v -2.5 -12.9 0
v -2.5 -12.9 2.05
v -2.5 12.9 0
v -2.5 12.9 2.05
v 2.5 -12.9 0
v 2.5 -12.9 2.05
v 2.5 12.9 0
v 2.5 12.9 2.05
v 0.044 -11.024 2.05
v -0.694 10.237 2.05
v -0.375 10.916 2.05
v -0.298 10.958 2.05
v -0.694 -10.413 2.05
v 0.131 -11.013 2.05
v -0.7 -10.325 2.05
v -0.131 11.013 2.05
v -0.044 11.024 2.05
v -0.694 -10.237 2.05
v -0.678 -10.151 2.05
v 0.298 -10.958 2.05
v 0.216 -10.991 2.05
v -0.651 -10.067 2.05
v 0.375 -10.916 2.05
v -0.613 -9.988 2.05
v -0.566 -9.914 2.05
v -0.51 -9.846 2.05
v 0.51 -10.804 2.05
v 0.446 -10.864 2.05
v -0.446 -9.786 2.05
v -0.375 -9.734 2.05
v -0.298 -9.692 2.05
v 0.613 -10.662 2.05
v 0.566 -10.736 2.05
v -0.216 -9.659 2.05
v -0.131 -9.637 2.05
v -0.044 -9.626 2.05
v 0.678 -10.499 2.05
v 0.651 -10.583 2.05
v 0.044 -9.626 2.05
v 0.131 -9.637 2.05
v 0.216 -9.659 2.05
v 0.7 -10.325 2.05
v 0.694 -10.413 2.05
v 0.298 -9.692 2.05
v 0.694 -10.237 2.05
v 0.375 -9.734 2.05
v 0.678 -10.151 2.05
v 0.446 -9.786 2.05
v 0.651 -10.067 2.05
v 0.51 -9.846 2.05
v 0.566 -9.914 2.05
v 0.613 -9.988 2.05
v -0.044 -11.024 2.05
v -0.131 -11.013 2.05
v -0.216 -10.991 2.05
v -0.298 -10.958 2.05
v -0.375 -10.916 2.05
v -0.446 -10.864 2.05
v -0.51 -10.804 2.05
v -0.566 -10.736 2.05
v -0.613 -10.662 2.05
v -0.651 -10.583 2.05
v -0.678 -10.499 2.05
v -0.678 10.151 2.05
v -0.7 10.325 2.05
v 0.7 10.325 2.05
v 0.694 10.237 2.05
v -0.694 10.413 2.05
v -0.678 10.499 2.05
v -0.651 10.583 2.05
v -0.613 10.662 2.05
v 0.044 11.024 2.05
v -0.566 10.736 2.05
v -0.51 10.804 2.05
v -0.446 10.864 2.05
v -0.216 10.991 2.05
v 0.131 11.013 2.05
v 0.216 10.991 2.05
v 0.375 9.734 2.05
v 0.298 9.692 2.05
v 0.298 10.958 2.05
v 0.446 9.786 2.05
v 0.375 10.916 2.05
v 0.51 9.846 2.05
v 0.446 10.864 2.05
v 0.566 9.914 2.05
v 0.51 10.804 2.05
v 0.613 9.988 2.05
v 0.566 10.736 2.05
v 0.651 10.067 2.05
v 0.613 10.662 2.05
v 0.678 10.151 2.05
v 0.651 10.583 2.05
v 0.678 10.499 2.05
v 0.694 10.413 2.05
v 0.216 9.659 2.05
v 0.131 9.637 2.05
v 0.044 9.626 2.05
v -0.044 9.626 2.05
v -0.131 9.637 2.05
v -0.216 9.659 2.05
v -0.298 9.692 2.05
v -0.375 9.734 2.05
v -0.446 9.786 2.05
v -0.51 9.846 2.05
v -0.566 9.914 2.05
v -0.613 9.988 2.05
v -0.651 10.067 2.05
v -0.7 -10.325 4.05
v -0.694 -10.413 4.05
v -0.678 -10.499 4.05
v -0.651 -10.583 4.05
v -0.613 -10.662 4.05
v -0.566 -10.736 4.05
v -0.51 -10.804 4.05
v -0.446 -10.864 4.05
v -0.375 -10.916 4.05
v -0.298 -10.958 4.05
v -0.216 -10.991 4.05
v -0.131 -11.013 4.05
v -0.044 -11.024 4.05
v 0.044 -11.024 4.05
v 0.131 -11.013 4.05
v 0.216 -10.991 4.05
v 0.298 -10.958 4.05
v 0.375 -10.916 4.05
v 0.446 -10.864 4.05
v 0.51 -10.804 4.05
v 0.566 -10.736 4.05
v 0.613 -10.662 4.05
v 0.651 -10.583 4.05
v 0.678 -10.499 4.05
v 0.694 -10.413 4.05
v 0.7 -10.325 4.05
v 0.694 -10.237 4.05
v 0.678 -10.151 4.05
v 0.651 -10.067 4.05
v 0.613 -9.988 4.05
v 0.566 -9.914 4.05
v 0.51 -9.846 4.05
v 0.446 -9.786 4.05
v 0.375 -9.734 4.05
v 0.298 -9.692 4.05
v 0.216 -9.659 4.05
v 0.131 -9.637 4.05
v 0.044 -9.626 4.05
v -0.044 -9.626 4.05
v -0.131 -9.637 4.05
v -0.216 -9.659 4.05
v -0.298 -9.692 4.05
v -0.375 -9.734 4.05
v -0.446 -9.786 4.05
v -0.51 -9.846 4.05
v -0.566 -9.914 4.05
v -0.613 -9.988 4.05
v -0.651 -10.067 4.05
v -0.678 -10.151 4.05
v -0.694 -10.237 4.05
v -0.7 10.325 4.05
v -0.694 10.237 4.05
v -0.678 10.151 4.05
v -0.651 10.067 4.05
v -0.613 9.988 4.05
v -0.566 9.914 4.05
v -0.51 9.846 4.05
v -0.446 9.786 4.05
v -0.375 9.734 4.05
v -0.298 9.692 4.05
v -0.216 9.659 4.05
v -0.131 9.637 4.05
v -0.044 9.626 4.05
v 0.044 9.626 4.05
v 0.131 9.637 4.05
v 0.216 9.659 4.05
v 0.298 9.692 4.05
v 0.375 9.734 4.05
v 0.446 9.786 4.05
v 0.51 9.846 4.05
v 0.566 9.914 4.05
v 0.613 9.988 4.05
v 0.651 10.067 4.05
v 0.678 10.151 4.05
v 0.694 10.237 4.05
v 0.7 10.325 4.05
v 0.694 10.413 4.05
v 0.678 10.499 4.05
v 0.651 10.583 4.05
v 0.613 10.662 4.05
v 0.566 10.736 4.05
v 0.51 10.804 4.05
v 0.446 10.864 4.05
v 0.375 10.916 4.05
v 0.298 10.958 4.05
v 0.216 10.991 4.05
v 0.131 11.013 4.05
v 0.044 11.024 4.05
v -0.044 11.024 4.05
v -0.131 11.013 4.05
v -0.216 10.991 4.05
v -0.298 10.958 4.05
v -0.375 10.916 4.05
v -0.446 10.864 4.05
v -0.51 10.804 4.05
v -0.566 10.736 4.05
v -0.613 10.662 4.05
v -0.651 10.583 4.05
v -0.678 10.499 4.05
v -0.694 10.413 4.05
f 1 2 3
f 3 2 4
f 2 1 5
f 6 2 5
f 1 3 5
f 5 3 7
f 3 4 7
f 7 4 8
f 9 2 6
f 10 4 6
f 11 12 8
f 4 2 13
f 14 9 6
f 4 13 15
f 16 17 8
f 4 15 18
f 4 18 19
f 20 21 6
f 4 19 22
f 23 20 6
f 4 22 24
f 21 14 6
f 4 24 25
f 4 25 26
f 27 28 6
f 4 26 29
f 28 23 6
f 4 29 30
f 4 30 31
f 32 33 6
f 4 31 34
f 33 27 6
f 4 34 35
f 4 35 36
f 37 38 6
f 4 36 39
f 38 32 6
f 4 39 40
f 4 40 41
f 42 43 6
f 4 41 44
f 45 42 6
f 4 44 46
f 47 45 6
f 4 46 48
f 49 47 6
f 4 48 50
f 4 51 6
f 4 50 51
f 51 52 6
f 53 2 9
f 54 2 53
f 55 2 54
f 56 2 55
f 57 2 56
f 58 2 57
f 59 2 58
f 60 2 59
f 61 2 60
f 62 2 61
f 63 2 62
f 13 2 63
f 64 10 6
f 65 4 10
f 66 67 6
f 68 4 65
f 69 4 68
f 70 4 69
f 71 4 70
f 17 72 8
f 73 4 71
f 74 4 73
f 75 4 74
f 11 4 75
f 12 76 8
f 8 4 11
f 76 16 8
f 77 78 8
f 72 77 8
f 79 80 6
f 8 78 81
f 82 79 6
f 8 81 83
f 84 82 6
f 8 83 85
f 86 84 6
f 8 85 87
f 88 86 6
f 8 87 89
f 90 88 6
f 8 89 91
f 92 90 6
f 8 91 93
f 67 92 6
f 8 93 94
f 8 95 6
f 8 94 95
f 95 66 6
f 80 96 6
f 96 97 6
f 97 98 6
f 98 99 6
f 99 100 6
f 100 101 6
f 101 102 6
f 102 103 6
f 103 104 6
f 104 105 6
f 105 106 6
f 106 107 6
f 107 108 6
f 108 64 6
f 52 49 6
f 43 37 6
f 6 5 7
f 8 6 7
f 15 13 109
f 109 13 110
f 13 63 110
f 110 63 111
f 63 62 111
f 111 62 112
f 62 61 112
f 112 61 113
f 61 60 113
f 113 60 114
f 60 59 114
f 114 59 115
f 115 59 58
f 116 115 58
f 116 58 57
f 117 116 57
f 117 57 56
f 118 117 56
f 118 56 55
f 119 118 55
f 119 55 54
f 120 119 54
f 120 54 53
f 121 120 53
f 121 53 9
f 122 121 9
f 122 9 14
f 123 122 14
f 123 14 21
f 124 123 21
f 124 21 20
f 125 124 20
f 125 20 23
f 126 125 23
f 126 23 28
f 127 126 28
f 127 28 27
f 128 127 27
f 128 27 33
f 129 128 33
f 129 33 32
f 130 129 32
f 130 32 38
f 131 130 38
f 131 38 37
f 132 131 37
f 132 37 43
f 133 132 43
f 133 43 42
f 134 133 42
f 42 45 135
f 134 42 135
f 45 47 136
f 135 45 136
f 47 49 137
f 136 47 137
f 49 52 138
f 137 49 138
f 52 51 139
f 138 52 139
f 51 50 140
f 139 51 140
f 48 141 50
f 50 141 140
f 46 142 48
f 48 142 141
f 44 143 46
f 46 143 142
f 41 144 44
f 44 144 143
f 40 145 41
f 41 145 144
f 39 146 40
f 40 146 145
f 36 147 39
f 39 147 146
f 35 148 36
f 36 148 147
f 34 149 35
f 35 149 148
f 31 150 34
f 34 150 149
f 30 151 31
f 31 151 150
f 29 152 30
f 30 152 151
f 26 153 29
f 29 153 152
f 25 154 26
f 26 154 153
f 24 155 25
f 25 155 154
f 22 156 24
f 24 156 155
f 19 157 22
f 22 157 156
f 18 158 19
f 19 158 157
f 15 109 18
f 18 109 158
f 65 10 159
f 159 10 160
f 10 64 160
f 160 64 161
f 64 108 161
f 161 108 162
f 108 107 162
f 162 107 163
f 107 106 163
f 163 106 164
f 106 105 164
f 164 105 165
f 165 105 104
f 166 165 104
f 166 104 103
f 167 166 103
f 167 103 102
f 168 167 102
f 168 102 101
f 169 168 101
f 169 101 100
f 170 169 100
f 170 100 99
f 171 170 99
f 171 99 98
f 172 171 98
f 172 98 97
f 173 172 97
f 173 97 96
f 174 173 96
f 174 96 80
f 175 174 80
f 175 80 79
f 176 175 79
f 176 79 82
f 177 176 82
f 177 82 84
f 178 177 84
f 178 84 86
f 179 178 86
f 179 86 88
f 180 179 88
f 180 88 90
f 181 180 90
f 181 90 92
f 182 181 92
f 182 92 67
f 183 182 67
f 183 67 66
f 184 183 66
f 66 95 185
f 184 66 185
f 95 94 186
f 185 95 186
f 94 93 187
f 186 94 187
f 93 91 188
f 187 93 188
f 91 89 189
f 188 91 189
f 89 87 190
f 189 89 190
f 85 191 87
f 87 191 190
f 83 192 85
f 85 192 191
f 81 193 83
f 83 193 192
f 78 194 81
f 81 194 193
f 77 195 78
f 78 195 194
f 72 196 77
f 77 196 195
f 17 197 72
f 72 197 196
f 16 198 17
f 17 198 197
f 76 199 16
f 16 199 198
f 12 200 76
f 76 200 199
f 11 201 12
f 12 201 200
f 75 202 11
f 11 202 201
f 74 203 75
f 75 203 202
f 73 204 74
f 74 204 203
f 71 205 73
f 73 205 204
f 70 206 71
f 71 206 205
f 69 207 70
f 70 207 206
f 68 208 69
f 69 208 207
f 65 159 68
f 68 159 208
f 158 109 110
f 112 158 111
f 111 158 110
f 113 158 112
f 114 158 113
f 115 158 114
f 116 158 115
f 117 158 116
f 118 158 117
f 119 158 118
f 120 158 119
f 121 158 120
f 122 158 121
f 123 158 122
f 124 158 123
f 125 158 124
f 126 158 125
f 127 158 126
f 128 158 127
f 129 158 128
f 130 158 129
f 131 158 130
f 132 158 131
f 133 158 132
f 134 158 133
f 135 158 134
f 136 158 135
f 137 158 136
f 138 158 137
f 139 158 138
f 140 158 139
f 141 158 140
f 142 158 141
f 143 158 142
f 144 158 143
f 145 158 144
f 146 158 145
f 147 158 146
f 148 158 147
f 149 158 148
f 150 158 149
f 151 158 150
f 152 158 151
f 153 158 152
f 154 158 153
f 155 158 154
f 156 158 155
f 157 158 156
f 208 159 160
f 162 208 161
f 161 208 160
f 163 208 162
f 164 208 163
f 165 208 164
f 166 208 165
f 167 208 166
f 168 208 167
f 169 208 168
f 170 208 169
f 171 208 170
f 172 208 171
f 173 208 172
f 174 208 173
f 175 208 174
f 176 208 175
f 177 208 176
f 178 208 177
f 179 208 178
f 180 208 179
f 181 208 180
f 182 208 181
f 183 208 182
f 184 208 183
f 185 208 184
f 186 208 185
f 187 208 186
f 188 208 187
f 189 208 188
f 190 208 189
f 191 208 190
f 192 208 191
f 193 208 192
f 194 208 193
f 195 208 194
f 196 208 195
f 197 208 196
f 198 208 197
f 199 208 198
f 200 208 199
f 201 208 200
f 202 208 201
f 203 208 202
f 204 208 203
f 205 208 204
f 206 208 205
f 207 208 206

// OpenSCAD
w = 5;
d = 25.8;
h_base = 2.05;
h_pin = 2;
pin_diameter = 1.8 - 0.4;
pin_offset = 10 + (0.75 - 0.1)/2;

translate([0, 0, h_base/2])
cube([w, d, h_base], center=true);

for (ysign = [-1, 1]) {
	translate([0, ysign*pin_offset, 0 + h_base + h_pin/2])
	cylinder(r=pin_diameter/2, h=h_pin, center=true, $fn=50);
}
